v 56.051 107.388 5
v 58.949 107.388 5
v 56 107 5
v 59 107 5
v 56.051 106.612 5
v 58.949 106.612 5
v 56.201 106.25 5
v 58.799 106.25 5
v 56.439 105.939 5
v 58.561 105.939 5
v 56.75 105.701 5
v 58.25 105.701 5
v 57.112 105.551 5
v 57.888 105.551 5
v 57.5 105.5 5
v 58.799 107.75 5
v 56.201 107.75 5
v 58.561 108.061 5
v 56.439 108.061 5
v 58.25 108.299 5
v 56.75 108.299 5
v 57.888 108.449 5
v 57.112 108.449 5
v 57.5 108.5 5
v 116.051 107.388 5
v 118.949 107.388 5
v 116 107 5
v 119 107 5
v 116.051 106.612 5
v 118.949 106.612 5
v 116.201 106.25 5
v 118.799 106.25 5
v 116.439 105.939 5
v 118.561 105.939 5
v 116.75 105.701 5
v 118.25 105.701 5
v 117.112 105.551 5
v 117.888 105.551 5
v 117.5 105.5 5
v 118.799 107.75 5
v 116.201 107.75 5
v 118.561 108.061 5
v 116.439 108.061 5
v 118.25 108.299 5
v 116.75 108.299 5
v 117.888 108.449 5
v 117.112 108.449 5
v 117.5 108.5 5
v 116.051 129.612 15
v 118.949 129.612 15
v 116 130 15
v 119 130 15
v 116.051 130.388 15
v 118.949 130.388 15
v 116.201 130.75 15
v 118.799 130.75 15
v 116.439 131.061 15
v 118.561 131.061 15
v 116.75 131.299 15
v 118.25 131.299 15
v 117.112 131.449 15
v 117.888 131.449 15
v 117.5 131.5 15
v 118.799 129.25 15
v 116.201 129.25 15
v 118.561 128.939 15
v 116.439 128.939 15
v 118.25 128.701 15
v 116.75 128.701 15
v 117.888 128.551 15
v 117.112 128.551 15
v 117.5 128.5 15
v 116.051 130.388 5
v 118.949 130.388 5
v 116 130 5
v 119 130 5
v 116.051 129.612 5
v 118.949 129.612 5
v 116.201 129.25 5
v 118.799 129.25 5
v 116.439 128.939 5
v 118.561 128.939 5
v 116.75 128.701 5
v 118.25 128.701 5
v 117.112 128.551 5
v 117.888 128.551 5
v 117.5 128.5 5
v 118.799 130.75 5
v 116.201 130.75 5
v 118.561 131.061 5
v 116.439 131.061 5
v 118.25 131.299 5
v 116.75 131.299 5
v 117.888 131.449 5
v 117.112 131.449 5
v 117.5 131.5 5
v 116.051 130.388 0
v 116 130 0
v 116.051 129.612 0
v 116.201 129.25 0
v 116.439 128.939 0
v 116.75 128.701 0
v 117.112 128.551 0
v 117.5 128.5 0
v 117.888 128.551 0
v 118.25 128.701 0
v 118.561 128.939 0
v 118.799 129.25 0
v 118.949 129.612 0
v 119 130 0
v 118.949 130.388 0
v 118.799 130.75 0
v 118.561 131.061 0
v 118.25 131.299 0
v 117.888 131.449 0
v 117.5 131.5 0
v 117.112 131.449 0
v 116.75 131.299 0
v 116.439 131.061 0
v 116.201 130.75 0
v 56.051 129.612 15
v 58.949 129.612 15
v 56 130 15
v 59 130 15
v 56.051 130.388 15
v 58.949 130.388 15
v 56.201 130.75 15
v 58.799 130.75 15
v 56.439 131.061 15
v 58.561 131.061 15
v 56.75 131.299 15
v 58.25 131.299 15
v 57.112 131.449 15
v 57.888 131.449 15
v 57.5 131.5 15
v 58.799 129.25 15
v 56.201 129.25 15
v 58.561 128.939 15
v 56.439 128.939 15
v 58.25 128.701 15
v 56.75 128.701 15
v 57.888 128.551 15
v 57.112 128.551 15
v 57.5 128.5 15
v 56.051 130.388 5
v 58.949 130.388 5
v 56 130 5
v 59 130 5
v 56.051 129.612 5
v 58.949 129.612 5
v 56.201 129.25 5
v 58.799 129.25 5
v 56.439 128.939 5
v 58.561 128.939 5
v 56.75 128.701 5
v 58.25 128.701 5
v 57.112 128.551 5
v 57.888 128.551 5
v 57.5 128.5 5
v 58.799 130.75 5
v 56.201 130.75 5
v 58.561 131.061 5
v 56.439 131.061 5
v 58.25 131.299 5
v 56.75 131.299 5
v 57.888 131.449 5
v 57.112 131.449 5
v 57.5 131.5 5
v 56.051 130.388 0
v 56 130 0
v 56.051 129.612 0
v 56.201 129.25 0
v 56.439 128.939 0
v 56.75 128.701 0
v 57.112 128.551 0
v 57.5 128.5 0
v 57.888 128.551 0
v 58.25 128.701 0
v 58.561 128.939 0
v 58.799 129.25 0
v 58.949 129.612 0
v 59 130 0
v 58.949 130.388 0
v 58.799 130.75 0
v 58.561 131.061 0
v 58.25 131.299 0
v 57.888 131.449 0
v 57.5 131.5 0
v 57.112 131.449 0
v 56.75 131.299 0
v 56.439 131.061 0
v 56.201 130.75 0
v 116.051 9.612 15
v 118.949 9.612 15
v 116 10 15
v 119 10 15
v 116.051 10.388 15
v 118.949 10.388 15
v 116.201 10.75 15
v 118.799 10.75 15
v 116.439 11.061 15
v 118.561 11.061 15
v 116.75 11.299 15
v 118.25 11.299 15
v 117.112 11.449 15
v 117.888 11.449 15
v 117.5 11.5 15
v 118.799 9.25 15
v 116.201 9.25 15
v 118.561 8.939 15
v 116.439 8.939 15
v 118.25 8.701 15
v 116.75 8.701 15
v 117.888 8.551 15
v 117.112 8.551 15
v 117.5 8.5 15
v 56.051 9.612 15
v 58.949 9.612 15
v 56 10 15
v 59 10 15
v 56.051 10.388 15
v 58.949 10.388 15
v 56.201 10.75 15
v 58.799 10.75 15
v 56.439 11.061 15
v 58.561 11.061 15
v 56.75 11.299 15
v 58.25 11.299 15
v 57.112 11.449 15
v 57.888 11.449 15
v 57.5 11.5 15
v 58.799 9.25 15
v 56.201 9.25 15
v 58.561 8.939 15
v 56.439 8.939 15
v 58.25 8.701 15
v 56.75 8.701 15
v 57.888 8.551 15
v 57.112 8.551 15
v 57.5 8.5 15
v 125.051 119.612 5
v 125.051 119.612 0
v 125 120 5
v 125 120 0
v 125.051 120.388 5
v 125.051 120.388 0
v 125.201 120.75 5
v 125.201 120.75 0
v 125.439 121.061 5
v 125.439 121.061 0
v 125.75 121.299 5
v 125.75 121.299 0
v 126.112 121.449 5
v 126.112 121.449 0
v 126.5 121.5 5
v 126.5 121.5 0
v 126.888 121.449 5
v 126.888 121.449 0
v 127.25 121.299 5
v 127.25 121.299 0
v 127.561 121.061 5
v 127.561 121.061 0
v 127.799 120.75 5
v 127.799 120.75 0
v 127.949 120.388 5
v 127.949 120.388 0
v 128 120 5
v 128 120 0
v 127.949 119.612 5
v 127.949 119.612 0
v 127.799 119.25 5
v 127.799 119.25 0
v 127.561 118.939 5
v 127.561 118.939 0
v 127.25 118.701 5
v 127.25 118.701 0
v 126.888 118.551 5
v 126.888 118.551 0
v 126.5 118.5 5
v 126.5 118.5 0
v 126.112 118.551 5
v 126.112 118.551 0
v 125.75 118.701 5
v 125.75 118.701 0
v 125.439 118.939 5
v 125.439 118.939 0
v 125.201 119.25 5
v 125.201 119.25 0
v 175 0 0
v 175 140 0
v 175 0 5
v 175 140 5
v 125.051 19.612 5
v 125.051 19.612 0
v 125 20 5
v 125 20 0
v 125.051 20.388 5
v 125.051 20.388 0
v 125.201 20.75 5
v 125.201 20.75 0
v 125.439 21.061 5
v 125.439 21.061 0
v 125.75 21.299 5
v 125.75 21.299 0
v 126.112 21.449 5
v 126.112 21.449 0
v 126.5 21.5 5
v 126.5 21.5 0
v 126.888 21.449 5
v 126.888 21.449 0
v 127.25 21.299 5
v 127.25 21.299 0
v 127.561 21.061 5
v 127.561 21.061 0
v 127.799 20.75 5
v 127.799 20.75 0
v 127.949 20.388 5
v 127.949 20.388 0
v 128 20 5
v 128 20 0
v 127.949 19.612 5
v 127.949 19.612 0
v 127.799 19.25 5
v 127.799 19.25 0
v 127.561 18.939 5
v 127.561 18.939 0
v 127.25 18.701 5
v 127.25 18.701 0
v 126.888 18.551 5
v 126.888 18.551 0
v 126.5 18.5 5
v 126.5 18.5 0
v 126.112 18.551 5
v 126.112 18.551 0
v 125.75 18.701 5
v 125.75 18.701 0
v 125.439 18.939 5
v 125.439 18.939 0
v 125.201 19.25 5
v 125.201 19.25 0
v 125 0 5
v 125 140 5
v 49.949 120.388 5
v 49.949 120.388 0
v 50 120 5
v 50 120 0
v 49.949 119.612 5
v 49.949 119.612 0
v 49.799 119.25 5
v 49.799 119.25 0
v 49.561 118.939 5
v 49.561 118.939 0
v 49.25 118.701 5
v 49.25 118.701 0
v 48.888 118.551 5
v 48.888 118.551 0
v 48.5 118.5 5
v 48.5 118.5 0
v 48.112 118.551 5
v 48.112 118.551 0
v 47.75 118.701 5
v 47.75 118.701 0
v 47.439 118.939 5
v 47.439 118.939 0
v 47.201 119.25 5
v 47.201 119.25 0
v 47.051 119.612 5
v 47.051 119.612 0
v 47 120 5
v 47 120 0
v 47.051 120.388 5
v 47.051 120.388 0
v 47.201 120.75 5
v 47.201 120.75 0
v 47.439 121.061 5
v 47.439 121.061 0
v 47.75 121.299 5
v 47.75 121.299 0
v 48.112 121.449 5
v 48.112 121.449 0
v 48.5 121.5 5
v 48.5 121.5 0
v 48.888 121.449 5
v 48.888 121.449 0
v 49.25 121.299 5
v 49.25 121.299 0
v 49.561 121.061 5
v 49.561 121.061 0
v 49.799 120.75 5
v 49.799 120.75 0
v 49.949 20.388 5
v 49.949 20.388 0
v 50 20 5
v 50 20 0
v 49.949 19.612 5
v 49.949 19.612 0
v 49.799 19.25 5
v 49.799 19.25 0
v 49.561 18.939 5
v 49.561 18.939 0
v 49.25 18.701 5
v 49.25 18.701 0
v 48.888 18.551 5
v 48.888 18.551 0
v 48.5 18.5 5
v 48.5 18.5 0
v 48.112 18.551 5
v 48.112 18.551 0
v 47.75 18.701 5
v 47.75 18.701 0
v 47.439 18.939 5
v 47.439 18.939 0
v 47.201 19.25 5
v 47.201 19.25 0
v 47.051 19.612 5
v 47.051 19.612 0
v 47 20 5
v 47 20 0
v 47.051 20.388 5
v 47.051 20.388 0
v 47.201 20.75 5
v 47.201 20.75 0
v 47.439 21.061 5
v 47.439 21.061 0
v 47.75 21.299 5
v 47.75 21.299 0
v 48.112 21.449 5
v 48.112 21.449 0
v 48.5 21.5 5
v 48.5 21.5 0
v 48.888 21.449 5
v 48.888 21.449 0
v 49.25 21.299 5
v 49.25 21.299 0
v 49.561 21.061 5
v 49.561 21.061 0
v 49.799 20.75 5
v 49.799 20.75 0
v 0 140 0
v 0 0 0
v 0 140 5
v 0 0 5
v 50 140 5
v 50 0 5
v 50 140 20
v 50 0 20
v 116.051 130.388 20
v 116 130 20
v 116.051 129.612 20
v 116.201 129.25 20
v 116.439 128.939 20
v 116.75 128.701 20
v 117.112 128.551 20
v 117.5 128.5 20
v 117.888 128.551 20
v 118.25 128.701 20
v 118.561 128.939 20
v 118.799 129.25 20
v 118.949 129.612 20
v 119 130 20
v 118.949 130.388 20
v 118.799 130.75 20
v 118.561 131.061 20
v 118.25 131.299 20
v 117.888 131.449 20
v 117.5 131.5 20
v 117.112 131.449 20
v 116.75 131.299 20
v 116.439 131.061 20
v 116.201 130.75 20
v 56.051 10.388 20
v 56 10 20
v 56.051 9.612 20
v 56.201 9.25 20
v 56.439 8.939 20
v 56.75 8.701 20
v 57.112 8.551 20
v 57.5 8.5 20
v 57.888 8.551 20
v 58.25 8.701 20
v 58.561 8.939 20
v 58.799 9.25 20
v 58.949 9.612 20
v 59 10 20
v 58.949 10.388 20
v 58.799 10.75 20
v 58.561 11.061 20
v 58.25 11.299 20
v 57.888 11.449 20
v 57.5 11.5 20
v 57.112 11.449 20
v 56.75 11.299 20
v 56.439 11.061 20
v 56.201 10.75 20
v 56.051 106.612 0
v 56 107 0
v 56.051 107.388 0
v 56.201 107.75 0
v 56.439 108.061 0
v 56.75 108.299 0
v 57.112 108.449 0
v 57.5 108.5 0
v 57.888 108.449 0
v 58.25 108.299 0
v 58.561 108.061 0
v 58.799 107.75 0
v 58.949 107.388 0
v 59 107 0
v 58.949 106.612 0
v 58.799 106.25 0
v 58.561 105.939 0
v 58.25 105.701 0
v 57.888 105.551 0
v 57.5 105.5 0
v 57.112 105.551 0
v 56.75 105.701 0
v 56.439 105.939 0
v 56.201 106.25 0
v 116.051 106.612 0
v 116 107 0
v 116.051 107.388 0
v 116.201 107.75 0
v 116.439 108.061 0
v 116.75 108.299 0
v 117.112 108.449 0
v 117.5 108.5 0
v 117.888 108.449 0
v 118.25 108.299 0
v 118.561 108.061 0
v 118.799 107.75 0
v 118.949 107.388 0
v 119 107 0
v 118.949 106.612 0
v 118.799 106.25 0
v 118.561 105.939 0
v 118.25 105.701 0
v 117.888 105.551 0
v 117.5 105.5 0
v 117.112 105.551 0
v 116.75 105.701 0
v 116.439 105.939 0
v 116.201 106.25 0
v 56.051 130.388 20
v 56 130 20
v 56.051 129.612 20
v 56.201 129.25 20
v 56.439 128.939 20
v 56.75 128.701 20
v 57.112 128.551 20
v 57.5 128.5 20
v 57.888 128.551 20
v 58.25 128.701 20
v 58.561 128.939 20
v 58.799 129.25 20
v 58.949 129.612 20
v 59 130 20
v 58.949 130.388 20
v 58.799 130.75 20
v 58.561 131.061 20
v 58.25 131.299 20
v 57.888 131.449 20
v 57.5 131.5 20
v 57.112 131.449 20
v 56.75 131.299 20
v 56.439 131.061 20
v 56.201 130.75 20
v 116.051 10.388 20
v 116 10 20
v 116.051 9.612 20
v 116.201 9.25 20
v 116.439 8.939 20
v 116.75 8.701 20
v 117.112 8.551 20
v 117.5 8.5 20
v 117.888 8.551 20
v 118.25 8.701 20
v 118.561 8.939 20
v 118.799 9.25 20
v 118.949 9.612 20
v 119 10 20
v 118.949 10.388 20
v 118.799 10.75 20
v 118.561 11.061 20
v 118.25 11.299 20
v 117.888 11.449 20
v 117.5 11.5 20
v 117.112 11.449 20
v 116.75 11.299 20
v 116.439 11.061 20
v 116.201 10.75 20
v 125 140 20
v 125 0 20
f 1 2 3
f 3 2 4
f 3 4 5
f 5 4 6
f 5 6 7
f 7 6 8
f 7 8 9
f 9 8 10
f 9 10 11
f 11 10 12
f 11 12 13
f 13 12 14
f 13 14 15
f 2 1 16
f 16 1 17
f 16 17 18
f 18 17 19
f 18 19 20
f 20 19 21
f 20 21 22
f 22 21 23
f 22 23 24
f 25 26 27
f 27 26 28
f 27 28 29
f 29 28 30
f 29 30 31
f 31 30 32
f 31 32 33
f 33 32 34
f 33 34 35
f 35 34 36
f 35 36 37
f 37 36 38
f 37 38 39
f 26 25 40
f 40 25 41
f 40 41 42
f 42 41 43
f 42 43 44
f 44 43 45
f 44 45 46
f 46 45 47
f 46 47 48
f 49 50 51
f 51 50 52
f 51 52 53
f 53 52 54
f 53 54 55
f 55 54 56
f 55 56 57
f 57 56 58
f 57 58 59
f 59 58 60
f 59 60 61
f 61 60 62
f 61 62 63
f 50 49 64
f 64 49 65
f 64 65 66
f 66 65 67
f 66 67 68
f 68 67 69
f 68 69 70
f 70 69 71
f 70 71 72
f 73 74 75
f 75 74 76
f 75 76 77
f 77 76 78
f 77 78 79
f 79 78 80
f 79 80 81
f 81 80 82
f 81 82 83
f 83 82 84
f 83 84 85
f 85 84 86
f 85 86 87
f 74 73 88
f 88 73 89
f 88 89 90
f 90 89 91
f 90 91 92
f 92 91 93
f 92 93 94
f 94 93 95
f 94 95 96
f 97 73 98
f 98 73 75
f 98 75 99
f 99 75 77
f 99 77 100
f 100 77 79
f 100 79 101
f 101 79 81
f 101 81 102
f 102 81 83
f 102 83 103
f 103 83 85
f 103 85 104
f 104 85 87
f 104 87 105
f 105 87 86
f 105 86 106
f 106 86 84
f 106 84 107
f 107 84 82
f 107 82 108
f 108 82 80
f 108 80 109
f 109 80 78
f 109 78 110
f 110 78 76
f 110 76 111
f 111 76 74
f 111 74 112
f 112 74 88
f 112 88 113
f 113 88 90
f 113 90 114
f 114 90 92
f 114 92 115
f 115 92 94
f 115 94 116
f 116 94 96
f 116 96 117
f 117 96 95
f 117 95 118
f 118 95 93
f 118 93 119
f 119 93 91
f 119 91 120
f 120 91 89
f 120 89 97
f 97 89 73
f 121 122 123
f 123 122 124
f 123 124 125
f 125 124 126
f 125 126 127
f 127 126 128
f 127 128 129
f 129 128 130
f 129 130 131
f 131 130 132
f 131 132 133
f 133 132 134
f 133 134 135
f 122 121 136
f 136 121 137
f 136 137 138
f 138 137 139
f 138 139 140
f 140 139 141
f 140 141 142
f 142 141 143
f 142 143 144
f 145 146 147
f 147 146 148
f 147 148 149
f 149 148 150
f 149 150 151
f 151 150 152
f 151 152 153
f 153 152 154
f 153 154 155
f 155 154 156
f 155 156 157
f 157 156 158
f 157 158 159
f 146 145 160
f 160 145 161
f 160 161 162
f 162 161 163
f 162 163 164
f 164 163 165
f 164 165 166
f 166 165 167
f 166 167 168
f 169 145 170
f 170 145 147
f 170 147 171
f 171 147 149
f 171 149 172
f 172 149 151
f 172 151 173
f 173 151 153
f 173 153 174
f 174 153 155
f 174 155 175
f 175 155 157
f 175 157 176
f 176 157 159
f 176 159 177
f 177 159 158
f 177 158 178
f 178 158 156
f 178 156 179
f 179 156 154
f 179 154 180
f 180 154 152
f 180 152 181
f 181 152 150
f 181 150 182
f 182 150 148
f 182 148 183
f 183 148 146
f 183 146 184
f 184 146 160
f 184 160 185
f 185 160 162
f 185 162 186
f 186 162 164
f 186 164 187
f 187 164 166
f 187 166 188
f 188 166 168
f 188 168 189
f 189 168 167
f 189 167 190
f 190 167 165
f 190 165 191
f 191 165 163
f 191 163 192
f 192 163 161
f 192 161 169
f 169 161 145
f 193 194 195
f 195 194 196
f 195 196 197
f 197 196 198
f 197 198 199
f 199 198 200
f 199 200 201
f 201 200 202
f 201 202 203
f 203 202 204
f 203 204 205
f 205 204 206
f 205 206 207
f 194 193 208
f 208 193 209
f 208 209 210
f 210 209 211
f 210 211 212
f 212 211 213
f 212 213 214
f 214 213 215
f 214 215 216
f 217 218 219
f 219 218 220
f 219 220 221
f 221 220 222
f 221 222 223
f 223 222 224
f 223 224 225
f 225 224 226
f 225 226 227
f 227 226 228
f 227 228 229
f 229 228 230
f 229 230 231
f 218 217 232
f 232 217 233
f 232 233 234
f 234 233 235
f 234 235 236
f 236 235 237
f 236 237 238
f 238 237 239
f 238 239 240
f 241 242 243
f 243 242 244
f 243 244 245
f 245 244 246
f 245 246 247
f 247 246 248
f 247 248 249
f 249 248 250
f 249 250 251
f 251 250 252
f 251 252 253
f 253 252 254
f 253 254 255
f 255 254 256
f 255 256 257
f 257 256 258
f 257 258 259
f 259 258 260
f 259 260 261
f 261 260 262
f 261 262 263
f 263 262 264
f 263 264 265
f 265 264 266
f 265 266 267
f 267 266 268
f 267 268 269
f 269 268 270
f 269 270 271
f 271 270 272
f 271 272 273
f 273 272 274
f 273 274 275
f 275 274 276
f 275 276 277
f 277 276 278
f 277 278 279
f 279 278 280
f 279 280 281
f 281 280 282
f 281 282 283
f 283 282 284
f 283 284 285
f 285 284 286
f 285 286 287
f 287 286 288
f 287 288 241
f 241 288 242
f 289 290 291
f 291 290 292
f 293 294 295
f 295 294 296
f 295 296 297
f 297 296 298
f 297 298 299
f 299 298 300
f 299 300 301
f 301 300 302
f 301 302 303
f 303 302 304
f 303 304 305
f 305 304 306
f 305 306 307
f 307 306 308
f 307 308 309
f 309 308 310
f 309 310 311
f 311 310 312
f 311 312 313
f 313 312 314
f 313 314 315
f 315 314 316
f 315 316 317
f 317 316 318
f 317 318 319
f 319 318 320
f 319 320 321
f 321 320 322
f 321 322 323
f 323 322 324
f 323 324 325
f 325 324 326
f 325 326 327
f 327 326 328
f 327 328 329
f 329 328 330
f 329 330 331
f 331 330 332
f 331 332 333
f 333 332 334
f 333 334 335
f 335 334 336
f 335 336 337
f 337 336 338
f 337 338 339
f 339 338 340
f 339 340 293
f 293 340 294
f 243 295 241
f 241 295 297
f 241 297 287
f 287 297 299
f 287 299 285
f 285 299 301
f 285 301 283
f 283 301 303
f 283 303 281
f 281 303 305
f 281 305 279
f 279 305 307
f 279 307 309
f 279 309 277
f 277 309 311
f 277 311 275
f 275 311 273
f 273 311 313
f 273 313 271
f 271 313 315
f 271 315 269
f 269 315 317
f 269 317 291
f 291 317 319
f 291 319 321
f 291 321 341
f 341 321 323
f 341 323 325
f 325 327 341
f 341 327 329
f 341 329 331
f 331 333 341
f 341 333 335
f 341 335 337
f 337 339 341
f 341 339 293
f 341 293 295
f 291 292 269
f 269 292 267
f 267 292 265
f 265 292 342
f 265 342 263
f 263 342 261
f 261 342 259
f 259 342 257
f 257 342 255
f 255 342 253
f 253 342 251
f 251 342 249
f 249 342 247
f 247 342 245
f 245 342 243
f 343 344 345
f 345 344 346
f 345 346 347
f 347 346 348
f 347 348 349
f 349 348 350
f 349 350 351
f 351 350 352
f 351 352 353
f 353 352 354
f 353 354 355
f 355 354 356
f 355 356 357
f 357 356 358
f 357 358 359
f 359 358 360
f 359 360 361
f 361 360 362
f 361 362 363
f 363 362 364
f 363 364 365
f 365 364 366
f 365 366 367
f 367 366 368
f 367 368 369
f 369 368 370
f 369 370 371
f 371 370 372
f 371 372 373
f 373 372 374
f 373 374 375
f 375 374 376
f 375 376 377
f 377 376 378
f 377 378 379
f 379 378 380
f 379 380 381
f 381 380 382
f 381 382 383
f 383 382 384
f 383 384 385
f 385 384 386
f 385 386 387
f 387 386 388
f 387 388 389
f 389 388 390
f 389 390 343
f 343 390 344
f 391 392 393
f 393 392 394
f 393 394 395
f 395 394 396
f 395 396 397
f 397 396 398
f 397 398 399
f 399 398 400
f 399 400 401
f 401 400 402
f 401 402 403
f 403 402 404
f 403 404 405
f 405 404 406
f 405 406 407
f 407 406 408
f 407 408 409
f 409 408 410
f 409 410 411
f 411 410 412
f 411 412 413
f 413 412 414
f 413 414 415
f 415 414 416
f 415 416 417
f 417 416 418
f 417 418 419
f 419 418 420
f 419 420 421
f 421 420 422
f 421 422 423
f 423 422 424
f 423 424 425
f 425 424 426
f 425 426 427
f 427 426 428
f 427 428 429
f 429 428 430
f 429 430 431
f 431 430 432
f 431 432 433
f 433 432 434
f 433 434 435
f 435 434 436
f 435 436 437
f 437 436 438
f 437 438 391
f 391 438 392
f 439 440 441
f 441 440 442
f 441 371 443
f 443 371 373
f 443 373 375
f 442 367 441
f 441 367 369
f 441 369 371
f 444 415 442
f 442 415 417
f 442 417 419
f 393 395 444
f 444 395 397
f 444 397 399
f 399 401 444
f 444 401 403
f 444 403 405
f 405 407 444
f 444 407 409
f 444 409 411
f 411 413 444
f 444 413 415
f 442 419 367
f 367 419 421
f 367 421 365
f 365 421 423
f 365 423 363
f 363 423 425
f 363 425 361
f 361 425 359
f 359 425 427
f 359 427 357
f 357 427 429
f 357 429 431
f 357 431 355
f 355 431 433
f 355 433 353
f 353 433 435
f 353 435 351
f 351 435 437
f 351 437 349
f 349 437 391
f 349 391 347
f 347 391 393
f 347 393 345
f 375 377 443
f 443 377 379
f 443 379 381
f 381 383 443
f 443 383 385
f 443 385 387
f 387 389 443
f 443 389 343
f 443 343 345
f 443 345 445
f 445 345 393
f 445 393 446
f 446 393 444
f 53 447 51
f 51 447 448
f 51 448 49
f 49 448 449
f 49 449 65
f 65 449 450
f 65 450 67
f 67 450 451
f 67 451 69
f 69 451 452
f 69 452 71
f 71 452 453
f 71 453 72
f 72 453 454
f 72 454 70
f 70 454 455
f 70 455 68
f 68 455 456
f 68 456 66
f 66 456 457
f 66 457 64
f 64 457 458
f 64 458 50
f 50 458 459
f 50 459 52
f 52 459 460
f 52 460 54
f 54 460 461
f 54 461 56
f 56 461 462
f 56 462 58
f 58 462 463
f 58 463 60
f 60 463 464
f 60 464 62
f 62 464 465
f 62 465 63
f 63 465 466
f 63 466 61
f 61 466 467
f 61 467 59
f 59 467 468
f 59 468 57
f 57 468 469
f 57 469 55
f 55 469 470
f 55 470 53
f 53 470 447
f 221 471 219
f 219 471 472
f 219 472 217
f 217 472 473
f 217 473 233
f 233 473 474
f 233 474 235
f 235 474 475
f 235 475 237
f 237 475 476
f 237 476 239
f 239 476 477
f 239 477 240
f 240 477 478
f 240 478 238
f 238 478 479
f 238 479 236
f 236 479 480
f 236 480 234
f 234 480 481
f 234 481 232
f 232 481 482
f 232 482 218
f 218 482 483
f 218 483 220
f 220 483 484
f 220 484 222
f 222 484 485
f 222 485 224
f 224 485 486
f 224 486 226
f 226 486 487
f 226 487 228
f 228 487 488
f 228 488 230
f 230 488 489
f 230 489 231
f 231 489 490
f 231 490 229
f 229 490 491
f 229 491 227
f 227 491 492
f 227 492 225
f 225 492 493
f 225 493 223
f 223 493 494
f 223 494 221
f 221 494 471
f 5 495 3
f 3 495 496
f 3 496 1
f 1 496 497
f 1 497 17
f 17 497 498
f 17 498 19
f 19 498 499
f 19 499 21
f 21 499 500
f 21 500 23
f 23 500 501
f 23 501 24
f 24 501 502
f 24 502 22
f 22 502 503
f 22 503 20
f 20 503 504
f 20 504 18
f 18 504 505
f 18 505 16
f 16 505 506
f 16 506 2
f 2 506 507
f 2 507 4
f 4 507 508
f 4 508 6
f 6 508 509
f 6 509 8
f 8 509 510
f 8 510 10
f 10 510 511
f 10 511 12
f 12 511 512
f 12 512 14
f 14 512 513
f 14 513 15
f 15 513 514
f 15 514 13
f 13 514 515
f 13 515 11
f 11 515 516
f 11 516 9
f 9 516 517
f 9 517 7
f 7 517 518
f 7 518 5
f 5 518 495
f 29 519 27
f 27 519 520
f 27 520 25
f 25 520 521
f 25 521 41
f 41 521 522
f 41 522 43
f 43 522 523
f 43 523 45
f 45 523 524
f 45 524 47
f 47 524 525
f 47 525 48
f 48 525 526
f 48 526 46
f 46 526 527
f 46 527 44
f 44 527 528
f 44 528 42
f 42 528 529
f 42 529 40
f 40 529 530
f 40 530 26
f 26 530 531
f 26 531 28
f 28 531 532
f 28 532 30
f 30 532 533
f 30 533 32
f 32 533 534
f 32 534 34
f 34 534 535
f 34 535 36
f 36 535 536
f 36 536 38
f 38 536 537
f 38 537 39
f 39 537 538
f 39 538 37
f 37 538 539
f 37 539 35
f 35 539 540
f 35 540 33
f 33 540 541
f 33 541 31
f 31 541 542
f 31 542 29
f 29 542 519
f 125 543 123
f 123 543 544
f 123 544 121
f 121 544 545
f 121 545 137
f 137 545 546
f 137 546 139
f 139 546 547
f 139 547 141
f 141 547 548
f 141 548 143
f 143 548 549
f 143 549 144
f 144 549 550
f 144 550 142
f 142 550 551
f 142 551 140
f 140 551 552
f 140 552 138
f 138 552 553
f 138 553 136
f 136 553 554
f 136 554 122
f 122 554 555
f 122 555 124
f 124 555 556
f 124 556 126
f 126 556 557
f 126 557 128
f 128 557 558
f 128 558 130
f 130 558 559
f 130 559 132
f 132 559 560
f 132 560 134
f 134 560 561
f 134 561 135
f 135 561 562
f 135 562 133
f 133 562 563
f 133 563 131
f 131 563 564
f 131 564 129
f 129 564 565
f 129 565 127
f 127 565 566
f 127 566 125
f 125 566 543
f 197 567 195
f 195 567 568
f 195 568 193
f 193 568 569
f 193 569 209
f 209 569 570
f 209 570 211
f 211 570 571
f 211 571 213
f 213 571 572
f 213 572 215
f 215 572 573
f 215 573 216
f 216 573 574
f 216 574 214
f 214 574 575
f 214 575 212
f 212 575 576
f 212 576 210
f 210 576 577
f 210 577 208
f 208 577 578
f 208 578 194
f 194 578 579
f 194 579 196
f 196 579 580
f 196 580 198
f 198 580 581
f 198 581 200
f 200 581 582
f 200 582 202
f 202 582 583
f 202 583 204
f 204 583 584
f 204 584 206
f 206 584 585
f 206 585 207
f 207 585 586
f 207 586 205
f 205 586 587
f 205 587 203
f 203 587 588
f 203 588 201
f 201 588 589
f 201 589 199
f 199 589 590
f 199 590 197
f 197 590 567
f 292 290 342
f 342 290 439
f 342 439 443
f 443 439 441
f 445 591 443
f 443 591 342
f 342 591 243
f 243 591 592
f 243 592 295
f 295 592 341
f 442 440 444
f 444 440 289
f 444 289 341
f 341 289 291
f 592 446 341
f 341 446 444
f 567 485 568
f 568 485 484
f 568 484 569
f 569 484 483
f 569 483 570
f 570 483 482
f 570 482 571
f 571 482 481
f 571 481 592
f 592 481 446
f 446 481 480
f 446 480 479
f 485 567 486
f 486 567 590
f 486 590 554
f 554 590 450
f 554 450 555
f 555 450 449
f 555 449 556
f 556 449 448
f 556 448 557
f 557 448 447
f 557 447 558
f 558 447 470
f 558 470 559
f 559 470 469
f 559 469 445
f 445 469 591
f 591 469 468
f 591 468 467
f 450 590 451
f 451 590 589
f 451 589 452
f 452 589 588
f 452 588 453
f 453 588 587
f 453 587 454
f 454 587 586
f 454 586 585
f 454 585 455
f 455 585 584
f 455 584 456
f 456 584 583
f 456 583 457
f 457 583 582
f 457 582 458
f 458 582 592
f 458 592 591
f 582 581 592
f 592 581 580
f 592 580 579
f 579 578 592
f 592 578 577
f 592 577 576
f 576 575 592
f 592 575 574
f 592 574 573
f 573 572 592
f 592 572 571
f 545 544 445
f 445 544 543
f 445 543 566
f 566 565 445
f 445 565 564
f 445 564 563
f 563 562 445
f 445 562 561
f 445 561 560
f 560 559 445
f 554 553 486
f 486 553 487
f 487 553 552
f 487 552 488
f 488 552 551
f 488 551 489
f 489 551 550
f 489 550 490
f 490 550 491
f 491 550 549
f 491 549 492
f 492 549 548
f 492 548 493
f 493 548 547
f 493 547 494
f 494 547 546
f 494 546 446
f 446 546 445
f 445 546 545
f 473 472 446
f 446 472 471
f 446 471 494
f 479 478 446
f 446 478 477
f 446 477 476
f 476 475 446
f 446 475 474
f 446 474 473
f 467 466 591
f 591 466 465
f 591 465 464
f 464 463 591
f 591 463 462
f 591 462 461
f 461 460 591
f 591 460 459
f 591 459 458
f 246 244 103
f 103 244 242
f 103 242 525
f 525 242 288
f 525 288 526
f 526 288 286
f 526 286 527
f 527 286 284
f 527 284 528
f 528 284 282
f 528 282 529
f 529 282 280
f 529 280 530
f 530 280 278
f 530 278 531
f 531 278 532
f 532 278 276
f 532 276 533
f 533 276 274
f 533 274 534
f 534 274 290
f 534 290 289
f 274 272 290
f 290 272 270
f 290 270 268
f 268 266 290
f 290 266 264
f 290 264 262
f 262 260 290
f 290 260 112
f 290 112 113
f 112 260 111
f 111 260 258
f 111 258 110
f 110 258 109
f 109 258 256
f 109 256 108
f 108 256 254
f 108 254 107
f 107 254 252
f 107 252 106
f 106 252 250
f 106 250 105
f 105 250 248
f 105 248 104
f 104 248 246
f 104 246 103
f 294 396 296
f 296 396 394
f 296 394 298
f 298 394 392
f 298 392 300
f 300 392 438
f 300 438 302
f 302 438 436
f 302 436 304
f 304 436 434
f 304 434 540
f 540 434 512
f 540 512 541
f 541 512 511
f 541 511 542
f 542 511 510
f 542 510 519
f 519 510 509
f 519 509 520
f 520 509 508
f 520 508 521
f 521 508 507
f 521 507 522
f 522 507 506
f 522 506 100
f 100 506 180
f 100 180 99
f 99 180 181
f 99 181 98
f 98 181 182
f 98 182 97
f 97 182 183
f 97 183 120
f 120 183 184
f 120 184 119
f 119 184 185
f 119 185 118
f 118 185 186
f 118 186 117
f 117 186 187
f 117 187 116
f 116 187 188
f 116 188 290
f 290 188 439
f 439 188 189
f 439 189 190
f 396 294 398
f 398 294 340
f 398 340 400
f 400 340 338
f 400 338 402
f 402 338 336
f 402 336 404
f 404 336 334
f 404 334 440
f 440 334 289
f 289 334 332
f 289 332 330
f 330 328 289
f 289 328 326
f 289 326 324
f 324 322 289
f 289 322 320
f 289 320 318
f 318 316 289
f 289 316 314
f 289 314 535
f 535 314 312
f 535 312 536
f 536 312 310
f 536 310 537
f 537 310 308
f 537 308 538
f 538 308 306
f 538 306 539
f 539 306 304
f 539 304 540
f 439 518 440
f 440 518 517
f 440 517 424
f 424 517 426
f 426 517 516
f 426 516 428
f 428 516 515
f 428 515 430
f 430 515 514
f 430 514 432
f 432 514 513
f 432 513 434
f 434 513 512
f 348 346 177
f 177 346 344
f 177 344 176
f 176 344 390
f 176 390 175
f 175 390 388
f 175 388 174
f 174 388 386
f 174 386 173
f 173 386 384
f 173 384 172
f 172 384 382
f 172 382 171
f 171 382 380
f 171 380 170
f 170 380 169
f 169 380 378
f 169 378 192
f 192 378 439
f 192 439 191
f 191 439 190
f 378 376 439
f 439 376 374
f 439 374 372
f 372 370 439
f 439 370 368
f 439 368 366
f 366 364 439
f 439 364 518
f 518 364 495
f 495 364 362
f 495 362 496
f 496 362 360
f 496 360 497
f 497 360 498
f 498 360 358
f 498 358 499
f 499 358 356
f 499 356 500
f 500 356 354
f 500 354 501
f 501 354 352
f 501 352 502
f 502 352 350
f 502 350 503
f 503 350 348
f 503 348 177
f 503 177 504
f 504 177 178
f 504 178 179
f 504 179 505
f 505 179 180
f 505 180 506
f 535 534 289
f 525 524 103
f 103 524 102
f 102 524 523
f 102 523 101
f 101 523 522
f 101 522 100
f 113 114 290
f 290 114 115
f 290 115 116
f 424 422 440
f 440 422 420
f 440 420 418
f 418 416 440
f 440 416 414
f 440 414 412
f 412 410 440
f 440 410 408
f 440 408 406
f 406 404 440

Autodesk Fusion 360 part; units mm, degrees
sketch "Sketch1" plane through (0, 0, 0) normal (0, 0, 1) x (1, 0, 0)
  line L0 (0, 0) -> (175, 0)
  line L1 (175, 0) -> (175, 140)
  line L2 (175, 140) -> (0, 140)
  line L3 (0, 140) -> (0, 0)
  line L4 (50, 140) -> (50, 0)
  line L5 (125, 140) -> (125, 0)
  circle A0 centre (57.5, 10) radius 1.5
  circle A1 centre (117.5, 10) radius 1.5
  line L6 (87.5, 0) -> (87.5, 140) construction
  circle A2 centre (57.5, 130) radius 1.5
  circle A3 centre (117.5, 130) radius 1.5
  line L7 (57.5, 130) -> (57.5, 100) construction
  circle A4 centre (57.5, 107) radius 1.5
  line L8 (117.5, 130) -> (117.5, 100) construction
  circle A5 centre (117.5, 107) radius 1.5
  circle A6 centre (48.5, 120) radius 1.5
  line L9 (0, 70) -> (175, 70) construction
  circle A7 centre (48.5, 20) radius 1.5
  circle A8 centre (126.5, 120) radius 1.5
  circle A9 centre (126.5, 20) radius 1.5
  dimension "d1" = 140
  dimension "d2" = 175
  dimension "d3" = 50
  dimension "d4" = 50
  dimension "d5" = 3
  dimension "d6" = 10
  dimension "d7" = 3
  dimension "d10" = 60
  dimension "d11" = 3
  dimension "d12" = 3
  dimension "d13" = 60
  dimension "d14" = 10
  dimension "d23" = 3
  dimension "d24" = 23
  dimension "d25" = 3
  dimension "d26" = 23
  dimension "d27" = 3
  dimension "d28" = 3
  dimension "d29" = 100
  dimension "d30" = 3
  dimension "d31" = 3
  dimension "d32" = 100
extrude "Extrude1" add sketch "Sketch1" along normal blind 20 contours L0 L2 L4 L5
extrude "Extrude3" add sketch "Sketch1" along normal blind 5 contours L0 L2 L3 L4 | L0 L1 L2 L5
extrude "Extrude4" add sketch "Sketch1" along normal blind 15 contours A0 | A1
extrude "Extrude5" add sketch "Sketch1" along normal blind 10 from surface at 5 contours A2 | A3
extrude "Extrude6" add sketch "Sketch1" along normal blind 15 from surface at 5 contours A4 | A5
